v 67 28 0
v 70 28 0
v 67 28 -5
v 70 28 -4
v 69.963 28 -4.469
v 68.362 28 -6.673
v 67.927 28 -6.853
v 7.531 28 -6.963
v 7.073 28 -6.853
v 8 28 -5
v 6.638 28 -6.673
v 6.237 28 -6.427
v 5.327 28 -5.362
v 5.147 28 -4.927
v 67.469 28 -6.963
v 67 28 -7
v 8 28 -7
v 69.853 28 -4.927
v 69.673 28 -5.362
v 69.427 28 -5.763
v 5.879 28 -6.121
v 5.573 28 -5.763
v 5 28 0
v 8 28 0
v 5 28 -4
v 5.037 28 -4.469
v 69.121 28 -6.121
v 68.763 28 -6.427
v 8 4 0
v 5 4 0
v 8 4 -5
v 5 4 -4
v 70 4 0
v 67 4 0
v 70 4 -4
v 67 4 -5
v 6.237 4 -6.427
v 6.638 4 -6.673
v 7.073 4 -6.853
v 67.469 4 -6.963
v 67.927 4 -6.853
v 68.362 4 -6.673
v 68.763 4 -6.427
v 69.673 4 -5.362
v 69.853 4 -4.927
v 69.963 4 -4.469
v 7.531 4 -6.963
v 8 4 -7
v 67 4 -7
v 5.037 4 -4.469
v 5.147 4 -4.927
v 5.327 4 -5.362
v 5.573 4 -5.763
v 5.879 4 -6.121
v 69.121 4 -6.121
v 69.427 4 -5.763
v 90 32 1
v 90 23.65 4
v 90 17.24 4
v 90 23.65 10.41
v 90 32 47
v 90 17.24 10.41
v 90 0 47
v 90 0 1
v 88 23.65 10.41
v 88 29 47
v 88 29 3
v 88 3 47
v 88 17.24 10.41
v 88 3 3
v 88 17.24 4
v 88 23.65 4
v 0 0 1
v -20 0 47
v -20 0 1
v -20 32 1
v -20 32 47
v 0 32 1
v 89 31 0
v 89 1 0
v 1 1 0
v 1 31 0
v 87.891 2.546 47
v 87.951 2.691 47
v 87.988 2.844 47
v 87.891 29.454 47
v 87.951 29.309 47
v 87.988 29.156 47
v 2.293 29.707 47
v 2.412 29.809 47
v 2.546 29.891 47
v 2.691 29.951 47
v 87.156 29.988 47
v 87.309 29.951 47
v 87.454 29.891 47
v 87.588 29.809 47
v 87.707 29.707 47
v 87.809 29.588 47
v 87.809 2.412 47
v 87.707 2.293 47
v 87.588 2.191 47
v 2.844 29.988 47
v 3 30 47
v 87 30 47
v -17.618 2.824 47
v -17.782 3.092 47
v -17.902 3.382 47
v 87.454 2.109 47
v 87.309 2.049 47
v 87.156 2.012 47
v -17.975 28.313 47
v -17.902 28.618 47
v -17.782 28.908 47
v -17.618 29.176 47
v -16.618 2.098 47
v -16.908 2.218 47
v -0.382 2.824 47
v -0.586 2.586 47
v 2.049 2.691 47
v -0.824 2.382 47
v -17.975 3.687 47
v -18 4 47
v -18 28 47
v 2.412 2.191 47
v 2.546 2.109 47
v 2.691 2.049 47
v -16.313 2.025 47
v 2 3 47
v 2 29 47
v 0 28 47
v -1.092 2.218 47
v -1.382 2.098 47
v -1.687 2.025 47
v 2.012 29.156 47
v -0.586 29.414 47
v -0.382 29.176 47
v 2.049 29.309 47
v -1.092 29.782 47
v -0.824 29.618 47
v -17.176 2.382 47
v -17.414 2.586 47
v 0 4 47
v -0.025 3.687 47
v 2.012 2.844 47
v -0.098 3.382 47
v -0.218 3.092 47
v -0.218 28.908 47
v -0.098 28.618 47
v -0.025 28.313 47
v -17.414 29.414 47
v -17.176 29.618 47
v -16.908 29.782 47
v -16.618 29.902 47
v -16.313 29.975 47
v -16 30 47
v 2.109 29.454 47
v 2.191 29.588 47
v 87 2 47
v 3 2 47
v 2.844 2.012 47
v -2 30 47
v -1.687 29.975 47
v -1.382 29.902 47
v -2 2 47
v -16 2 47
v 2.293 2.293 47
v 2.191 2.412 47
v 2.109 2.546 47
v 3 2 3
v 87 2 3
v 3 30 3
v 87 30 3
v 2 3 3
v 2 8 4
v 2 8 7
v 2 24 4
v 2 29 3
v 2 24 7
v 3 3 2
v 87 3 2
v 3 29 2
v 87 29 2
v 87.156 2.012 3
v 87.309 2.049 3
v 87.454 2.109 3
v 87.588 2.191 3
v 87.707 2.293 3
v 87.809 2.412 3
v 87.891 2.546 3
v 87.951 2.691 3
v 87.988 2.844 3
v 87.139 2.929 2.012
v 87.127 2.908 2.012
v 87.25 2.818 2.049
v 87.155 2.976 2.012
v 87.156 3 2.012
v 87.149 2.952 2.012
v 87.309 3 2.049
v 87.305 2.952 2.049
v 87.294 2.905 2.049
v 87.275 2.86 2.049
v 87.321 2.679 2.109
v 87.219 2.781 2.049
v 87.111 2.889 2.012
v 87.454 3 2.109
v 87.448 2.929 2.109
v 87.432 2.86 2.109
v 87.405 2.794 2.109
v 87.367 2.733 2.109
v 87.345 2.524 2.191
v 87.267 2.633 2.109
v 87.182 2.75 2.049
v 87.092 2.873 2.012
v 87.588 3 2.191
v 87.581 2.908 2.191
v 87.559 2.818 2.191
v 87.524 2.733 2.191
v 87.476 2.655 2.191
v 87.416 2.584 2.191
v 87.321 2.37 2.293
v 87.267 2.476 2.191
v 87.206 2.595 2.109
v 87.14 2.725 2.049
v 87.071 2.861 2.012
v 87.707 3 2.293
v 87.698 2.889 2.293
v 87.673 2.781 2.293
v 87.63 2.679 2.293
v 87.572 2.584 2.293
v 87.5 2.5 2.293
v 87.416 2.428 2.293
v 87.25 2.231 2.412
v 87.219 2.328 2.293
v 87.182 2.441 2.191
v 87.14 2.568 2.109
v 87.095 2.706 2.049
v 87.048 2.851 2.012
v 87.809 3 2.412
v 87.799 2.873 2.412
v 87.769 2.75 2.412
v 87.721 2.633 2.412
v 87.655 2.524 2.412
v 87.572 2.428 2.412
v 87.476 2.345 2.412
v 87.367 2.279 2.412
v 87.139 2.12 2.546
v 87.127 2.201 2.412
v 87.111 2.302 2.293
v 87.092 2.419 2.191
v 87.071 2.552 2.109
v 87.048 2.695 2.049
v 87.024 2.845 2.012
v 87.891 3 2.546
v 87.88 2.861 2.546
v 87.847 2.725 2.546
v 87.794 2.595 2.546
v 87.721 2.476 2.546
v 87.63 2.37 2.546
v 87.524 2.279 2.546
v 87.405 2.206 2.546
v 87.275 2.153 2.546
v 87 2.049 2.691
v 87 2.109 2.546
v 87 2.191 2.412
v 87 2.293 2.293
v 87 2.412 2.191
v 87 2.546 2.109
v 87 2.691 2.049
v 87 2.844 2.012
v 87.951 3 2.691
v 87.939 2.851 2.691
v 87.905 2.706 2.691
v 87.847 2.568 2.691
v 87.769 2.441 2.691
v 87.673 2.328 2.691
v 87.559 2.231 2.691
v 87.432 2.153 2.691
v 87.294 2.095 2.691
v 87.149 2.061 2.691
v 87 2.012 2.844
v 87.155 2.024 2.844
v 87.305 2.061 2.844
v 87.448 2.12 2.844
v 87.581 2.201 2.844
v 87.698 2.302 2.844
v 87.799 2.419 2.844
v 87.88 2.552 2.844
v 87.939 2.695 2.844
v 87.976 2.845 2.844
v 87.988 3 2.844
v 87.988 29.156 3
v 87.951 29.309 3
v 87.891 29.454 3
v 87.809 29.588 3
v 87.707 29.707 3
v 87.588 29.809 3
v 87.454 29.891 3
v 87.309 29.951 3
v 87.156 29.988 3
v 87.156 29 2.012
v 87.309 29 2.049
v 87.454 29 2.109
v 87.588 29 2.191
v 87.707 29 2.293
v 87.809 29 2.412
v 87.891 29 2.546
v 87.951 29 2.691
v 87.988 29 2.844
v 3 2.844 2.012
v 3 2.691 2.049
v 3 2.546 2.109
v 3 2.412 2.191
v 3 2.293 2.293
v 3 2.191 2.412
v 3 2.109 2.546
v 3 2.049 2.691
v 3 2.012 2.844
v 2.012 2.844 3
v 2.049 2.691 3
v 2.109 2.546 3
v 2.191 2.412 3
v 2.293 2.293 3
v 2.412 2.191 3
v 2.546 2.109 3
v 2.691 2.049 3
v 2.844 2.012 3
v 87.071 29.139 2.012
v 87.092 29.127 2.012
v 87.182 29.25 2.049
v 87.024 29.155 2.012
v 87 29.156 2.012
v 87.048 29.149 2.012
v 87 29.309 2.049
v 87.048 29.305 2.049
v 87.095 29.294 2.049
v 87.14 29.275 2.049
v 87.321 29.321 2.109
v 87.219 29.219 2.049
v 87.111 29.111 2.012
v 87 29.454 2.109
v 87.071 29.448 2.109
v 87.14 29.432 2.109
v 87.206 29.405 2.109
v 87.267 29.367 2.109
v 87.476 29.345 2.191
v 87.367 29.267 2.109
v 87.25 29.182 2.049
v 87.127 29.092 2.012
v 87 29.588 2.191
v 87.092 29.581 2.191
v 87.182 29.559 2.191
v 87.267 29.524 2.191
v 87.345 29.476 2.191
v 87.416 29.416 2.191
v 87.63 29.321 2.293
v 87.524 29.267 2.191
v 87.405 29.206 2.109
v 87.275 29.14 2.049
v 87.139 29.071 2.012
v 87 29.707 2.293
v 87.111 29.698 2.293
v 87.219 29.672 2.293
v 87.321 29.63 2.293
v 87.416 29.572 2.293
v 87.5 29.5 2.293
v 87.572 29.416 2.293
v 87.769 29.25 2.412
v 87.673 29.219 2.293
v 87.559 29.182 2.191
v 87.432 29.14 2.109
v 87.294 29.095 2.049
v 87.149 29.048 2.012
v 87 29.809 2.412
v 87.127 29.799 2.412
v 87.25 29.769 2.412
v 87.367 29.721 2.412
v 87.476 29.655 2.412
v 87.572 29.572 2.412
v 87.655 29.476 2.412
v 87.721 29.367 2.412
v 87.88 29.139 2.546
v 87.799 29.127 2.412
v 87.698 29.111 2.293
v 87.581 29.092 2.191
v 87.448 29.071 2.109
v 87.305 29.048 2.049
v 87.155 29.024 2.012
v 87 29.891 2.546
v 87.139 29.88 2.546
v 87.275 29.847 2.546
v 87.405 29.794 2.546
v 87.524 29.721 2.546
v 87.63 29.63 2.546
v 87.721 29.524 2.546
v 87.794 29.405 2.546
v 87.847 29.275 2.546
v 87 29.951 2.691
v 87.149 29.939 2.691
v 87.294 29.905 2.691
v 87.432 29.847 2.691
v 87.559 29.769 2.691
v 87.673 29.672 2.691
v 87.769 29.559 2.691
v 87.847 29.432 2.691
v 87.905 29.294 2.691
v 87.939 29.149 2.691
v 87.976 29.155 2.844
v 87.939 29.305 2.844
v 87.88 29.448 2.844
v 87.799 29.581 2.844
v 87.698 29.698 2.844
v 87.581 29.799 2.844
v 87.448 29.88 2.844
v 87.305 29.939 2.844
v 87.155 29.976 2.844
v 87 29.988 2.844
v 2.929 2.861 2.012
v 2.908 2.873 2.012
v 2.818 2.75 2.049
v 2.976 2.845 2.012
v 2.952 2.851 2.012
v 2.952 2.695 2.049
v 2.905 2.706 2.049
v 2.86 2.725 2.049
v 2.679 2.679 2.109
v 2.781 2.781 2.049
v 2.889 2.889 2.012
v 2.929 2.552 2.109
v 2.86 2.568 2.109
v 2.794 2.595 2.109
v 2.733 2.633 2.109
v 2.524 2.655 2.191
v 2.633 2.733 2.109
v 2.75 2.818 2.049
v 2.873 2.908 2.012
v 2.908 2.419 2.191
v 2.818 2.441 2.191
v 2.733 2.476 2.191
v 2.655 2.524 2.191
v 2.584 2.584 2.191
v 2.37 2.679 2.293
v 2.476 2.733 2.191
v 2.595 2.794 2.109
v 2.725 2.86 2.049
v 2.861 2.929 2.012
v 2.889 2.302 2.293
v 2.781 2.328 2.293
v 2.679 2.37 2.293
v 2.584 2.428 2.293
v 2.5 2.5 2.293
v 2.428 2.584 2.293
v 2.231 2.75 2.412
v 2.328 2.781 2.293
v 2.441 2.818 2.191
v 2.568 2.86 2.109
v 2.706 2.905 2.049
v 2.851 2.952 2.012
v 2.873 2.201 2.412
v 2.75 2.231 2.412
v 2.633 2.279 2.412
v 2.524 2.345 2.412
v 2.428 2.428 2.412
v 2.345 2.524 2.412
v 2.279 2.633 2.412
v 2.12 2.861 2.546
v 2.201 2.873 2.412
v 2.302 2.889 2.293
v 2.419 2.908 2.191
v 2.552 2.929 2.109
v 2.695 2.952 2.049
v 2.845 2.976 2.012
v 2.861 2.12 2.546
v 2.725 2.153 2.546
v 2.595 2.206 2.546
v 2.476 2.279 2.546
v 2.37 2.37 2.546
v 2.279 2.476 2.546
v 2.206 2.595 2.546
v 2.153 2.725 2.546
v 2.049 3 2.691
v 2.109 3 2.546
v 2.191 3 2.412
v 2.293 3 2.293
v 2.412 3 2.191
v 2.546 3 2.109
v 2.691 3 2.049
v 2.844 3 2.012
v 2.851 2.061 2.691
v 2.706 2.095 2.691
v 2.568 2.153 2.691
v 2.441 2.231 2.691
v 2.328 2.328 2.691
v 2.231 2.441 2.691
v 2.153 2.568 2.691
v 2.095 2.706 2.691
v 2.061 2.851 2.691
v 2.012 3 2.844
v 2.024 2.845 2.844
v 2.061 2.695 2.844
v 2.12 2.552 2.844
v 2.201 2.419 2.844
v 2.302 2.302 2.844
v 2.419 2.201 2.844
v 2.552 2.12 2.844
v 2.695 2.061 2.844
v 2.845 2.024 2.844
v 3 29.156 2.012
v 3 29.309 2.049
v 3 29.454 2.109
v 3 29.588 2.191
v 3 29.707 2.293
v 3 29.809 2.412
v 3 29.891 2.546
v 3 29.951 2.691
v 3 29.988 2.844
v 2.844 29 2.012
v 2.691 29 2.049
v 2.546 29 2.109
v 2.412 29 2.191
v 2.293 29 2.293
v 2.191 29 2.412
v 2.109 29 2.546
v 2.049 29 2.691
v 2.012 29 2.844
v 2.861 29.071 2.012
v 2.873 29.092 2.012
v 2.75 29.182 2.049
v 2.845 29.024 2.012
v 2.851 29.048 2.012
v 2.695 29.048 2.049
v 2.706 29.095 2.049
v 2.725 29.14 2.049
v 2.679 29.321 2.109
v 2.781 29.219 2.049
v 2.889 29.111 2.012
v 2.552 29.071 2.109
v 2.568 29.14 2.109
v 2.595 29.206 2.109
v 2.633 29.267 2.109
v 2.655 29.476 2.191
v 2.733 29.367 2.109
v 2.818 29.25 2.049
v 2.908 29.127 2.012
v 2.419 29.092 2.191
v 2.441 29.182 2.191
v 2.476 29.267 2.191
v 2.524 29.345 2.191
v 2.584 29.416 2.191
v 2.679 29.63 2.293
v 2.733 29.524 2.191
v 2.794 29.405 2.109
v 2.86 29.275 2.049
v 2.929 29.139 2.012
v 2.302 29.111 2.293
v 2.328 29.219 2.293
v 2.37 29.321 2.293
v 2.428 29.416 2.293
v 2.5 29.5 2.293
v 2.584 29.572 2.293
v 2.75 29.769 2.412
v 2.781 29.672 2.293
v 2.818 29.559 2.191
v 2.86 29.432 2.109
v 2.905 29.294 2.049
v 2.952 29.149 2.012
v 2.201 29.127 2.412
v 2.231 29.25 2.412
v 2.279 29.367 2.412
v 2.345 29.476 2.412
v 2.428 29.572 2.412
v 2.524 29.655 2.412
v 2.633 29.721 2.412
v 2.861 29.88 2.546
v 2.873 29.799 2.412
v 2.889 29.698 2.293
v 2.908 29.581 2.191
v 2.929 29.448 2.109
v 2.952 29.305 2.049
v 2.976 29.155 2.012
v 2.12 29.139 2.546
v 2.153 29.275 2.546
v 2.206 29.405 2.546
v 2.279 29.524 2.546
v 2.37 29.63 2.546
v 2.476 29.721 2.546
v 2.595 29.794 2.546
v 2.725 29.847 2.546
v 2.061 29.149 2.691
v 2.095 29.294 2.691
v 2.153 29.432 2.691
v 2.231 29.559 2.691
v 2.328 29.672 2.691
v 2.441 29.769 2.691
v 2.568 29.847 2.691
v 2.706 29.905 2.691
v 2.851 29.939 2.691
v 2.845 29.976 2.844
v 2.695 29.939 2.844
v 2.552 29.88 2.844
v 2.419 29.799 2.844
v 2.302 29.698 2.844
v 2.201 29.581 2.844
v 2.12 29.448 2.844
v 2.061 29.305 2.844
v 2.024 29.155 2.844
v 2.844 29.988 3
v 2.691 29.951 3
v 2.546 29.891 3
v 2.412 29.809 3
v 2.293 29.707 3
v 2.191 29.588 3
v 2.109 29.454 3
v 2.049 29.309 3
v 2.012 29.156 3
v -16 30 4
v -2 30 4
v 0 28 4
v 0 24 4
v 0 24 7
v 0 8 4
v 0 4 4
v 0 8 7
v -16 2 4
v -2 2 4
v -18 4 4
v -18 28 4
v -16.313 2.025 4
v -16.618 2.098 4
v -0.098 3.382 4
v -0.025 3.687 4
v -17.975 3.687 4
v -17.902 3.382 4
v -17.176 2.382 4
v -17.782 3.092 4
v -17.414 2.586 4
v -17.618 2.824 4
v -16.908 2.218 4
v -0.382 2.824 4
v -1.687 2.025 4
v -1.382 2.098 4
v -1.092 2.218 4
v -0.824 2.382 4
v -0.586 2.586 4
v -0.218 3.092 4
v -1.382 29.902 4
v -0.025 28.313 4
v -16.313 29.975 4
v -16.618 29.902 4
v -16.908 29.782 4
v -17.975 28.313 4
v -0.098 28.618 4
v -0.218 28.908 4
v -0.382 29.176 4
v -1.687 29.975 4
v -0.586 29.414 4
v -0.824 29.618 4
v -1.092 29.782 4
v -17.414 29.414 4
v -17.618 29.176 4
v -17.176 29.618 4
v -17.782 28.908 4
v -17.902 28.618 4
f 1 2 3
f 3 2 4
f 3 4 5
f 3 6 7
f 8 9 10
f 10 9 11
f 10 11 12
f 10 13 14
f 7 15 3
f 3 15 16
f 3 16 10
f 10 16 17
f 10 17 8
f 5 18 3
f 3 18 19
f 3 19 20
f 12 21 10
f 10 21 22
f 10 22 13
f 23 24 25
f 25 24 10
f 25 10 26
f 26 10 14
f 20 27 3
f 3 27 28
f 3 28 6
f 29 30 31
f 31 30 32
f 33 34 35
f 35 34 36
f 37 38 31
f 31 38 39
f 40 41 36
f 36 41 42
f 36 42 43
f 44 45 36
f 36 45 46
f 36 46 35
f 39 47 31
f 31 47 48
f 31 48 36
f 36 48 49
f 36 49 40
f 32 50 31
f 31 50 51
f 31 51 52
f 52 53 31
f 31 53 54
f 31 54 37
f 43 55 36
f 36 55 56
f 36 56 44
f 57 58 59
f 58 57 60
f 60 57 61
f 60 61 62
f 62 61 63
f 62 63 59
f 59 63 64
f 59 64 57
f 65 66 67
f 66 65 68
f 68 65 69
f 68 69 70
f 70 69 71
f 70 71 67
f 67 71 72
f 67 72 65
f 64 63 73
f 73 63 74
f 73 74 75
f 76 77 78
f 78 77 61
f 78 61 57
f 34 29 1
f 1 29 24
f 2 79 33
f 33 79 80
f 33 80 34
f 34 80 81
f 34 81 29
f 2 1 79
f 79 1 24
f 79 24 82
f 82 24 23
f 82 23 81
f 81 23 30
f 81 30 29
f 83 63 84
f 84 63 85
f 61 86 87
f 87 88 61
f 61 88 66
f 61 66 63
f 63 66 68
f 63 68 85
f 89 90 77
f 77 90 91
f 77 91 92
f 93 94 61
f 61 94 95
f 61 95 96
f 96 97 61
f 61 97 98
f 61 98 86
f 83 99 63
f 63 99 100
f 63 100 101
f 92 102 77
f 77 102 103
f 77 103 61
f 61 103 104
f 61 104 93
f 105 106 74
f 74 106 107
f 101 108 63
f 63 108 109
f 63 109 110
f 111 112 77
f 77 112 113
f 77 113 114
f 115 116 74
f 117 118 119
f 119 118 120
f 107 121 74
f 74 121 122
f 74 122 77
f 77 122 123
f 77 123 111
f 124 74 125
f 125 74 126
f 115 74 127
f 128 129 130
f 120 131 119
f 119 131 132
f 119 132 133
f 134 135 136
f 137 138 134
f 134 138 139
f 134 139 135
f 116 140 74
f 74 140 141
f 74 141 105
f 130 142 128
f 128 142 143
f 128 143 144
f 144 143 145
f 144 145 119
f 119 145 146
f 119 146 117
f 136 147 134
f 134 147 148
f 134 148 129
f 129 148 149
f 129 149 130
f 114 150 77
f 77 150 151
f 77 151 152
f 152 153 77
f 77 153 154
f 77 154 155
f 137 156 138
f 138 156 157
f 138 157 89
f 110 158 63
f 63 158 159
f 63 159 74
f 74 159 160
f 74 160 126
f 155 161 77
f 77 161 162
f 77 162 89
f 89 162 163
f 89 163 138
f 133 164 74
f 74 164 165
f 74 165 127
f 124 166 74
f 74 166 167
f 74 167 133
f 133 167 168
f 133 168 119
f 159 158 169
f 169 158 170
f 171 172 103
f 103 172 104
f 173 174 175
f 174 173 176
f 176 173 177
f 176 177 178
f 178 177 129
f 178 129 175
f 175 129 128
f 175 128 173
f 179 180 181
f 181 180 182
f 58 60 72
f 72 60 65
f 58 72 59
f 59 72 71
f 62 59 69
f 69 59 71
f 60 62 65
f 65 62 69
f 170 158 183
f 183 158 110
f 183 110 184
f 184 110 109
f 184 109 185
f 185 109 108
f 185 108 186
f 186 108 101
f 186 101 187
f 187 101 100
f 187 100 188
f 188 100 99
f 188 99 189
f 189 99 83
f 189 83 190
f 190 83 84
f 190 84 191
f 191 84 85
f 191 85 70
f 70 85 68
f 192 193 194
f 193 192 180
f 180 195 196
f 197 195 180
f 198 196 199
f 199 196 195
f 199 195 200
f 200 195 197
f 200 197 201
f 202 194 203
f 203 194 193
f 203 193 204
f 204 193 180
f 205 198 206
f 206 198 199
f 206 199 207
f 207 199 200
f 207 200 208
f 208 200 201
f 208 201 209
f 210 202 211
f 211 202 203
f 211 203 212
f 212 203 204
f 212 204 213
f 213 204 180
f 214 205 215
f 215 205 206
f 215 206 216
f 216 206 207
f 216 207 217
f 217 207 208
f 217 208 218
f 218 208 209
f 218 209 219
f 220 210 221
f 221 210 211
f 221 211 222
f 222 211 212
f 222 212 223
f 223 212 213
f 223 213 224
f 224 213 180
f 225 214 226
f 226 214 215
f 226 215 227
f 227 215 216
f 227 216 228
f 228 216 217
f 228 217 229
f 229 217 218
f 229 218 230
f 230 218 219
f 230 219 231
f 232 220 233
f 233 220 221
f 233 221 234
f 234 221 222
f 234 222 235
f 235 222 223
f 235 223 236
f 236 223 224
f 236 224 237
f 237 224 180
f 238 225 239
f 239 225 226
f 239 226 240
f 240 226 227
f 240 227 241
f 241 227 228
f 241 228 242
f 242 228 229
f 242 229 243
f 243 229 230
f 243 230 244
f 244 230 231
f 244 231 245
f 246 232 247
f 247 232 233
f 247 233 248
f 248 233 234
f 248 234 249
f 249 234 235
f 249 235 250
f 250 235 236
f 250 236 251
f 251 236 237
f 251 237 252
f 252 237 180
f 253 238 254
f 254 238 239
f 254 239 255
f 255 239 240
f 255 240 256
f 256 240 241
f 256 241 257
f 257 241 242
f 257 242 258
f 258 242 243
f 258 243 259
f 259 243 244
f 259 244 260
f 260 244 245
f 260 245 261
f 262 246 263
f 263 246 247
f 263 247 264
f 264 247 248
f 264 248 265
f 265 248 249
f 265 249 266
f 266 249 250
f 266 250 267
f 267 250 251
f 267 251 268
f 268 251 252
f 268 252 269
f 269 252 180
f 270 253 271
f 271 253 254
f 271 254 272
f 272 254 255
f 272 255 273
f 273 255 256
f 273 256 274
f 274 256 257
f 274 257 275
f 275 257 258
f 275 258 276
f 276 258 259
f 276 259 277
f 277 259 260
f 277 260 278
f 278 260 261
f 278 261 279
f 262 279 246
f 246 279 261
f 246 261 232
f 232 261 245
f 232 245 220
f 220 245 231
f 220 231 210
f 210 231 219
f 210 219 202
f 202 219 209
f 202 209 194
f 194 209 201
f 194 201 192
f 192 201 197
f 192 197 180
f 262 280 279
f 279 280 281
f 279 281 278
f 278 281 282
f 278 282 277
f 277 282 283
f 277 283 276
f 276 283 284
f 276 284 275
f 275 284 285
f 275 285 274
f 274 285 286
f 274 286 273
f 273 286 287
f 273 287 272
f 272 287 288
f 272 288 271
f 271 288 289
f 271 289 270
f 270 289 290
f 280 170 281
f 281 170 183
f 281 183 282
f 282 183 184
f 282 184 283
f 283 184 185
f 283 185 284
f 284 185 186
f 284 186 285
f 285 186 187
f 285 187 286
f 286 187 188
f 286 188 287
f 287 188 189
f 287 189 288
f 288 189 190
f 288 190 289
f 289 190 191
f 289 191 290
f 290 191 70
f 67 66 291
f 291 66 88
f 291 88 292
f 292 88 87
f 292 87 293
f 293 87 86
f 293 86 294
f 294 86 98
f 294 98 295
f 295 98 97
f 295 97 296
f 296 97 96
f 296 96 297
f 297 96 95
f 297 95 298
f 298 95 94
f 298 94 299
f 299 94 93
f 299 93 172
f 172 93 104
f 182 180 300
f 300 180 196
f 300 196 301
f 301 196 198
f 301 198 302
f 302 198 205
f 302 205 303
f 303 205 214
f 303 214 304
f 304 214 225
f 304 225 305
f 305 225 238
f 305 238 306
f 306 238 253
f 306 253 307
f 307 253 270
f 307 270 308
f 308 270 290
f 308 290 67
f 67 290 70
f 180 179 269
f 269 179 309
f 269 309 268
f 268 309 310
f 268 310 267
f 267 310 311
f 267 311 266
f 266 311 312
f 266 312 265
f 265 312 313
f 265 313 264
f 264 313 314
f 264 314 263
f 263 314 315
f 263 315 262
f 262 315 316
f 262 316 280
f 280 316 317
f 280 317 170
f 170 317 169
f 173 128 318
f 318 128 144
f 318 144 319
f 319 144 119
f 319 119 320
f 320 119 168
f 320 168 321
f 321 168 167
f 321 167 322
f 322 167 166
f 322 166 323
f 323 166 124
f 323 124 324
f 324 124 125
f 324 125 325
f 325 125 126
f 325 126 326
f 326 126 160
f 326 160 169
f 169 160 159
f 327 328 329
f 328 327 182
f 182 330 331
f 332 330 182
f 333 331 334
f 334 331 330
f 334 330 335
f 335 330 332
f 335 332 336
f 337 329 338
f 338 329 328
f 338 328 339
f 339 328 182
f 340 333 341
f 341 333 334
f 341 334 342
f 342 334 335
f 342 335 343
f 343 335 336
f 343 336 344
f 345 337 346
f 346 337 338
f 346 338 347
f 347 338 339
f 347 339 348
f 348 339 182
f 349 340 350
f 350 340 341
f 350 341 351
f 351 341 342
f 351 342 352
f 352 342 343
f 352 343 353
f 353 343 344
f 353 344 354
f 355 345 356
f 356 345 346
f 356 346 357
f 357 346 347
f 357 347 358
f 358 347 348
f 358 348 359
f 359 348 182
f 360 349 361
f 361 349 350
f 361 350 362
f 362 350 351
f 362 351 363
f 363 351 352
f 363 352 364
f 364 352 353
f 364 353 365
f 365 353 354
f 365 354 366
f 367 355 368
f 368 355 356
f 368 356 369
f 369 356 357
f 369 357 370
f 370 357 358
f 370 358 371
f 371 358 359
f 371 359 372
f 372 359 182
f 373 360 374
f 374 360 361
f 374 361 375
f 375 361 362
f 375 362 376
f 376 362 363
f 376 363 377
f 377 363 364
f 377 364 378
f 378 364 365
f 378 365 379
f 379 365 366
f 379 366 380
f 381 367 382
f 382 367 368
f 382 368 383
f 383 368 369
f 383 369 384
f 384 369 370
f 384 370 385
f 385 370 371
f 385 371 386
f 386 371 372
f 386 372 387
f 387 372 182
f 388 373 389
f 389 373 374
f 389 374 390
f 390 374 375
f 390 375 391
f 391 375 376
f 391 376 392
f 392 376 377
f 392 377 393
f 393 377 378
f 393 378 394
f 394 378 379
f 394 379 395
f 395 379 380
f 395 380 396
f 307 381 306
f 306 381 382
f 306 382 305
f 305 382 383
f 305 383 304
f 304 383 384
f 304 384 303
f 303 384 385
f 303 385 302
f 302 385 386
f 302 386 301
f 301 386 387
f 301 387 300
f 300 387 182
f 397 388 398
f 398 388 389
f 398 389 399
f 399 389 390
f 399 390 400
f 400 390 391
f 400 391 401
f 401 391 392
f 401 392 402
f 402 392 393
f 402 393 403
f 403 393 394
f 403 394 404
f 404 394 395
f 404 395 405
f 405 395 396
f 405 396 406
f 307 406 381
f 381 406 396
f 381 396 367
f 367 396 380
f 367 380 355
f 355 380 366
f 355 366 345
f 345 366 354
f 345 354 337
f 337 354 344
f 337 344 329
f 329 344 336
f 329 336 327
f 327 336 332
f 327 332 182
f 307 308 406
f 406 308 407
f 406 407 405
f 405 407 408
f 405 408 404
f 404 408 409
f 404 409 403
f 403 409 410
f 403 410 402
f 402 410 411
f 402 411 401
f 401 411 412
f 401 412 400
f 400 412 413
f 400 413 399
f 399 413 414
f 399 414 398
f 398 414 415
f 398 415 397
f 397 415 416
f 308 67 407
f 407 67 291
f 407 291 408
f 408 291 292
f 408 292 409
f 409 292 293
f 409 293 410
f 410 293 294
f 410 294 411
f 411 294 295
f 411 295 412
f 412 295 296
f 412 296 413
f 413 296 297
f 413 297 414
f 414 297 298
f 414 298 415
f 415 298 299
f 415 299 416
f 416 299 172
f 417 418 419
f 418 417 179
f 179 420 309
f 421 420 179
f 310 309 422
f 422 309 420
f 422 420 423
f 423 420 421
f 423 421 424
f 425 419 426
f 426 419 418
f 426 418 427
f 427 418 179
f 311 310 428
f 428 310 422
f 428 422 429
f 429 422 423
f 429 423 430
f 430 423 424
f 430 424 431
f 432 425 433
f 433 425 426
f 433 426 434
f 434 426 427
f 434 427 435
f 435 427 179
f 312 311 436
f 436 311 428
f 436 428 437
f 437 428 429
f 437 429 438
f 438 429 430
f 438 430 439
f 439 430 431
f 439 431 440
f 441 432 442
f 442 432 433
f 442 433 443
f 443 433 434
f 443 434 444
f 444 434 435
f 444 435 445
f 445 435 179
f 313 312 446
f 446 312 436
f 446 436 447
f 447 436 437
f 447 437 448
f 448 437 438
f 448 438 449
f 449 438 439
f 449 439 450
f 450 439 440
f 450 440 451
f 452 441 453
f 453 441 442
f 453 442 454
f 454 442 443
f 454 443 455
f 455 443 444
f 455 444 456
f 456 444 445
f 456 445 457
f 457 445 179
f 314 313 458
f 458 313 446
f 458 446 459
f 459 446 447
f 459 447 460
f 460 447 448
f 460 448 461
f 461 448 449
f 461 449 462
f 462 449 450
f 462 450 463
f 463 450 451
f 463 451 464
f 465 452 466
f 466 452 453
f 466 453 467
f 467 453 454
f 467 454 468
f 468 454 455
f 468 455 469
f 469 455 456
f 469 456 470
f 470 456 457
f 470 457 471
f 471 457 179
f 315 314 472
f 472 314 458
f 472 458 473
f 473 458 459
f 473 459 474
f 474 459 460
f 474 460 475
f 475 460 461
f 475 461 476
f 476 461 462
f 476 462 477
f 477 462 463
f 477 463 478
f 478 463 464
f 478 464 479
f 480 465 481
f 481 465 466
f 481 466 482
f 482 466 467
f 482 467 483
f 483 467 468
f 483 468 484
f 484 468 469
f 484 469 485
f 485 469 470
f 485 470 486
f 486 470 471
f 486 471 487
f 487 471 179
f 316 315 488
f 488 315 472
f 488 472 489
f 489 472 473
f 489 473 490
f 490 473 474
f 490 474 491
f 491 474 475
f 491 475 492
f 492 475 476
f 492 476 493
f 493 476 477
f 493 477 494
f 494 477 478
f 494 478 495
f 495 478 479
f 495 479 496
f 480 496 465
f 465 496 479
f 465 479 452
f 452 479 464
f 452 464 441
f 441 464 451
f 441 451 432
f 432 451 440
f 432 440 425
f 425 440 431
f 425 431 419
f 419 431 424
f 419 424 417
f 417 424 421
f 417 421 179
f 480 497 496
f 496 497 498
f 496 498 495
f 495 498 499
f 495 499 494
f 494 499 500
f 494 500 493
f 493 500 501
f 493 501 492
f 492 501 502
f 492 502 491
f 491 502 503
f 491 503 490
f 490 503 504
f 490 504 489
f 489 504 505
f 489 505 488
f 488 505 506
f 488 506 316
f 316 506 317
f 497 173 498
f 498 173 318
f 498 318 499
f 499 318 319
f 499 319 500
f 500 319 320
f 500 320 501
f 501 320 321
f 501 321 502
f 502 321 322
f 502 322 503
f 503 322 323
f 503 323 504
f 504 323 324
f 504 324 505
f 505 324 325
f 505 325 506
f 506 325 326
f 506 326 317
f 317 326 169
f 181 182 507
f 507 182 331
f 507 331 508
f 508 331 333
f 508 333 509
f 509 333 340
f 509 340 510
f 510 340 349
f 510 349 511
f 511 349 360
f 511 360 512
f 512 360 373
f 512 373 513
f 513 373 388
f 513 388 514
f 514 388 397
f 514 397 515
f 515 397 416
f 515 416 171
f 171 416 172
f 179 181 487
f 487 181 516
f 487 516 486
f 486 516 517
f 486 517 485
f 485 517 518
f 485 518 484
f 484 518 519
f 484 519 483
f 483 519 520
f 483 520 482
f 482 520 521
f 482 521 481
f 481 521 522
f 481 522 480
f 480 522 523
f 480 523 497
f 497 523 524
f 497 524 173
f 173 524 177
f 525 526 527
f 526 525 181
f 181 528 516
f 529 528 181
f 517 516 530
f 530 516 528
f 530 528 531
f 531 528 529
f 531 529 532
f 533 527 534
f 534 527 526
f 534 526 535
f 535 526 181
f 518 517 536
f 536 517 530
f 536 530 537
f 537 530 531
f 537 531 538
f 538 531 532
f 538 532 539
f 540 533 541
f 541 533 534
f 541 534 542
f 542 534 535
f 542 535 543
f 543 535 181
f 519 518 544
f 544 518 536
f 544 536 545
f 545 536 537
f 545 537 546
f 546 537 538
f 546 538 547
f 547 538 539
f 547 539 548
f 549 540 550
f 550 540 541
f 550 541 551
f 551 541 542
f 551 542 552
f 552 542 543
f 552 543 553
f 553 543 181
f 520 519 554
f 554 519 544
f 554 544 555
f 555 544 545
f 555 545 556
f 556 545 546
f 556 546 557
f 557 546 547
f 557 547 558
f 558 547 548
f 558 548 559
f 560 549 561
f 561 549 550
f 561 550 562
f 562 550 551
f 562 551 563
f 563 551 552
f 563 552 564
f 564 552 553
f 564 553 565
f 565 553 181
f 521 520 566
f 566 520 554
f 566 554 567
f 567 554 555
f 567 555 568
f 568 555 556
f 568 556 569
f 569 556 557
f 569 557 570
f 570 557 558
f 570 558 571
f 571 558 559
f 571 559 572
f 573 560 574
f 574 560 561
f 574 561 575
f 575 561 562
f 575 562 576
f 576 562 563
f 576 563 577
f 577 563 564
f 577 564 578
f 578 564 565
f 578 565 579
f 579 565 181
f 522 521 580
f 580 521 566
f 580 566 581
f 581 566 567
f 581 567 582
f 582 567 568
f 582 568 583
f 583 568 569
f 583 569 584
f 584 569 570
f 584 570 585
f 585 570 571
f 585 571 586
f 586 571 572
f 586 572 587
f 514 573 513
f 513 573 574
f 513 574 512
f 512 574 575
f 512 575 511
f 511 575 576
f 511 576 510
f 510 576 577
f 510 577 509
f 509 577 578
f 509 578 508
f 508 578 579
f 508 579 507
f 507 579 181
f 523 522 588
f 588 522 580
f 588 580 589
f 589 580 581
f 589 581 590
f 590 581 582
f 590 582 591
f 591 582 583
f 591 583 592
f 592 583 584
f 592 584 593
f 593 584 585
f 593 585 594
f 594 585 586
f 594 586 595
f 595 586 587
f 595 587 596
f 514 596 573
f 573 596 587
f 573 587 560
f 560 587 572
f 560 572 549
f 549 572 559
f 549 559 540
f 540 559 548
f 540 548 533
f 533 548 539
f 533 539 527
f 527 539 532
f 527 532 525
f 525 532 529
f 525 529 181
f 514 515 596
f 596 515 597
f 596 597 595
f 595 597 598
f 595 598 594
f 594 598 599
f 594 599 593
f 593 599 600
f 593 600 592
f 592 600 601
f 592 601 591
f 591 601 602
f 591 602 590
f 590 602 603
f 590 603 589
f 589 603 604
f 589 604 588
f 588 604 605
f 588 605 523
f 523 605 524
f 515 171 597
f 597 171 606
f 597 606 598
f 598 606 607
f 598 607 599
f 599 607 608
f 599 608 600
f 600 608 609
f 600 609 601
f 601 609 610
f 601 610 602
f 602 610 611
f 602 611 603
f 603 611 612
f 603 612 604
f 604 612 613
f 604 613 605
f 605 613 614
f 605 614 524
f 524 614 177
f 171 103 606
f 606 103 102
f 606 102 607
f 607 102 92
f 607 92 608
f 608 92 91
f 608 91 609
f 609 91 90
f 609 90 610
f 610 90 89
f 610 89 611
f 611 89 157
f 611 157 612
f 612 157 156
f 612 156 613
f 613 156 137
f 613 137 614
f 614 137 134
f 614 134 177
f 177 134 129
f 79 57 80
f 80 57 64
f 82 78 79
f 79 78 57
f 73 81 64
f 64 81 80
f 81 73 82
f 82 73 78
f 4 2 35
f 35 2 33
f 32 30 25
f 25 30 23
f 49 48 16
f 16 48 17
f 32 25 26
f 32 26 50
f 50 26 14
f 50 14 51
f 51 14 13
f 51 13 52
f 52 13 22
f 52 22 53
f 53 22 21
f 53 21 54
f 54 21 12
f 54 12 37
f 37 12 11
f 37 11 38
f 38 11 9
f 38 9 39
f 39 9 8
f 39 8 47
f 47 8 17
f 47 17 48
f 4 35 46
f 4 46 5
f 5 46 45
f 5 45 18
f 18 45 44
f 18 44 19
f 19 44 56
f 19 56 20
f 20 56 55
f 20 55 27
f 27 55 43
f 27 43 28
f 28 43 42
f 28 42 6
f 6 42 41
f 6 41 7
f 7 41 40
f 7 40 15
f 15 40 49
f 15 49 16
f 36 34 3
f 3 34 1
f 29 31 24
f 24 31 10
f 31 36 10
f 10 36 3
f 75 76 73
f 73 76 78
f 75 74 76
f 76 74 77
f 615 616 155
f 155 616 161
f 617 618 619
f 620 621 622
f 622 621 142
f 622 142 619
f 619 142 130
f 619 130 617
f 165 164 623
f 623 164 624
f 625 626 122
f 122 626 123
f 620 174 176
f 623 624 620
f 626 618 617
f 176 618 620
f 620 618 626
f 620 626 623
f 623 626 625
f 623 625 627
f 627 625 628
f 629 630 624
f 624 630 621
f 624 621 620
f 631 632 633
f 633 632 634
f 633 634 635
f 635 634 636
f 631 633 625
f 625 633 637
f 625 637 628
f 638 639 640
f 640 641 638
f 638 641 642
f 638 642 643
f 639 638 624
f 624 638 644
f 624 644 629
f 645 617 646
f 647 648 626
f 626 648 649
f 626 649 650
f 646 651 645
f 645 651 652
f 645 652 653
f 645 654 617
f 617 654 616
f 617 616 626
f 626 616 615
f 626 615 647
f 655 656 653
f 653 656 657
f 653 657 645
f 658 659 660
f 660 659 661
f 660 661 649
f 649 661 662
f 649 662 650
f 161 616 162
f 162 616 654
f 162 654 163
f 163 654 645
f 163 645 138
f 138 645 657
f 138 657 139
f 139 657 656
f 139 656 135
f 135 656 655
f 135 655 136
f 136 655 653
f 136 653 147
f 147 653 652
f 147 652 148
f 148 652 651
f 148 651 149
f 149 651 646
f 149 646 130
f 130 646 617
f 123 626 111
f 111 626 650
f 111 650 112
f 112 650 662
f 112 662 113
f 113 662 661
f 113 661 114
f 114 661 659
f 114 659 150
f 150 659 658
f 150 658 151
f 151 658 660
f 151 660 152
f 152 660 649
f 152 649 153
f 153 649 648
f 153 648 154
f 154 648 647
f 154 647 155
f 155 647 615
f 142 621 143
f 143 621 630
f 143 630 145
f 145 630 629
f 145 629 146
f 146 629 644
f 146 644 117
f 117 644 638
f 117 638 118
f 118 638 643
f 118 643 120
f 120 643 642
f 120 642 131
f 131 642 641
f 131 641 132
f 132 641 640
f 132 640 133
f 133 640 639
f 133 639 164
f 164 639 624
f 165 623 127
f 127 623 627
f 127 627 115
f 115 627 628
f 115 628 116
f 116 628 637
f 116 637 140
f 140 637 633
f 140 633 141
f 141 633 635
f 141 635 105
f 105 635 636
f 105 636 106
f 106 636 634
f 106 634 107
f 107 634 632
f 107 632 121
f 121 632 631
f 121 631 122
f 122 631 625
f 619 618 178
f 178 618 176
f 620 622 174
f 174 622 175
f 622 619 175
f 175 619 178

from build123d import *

# Parameters (mm, degrees)
ESQUISSE1_W             = 90
ESQUISSE1_H             = 32
BOSS_EXTRU_1_DEPTH      = 2
ESQUISSE2_W             = 90
ESQUISSE2_H             = 32
ESQUISSE2_W_2           = 86
ESQUISSE2_H_2           = 28
BOSS_EXTRU_3_DEPTH      = 45
ENL_V_MAT_EXTRU_1_REACH = 108.457
ESQUISSE3_W             = 6.41
ESQUISSE3_H             = 6.41
CONG_3_R                = 1
CHANFREIN8_SIZE         = 1
ESQUISSE7_W             = 65
ESQUISSE7_H             = 24
BOSS_EXTRU_8_DEPTH      = 7
CONG_11_R               = 3
CONG_12_R               = 3
ESQUISSE17_W            = 59
ESQUISSE17_H            = 5
ENL_V_MAT_EXTRU_6_DEPTH = 24
ESQUISSE20_W            = 46
ESQUISSE20_H            = 32
BOSS_EXTRU_10_DEPTH     = 20
ESQUISSE21_W            = 18
ESQUISSE21_H            = 28
ENL_V_MAT_EXTRU_7_DEPTH = 43
CONG_13_R               = 2
CONG_14_R               = 2
CONG_15_R               = 2
CONG_16_R               = 2
ESQUISSE22_W            = 3
ESQUISSE22_H            = 16
ENL_V_MAT_EXTRU_8_DEPTH = 2


with BuildPart() as part:
    # Esquisse1 → Boss.-Extru.1 (new body)
    with BuildSketch(Plane.XY):
        with Locations((45, 16)):
            Rectangle(ESQUISSE1_W, ESQUISSE1_H)
    extrude(amount=BOSS_EXTRU_1_DEPTH)

    # Esquisse2 → Boss.-Extru.3 (add)
    with BuildSketch(Plane.XY.offset(2)):
        with Locations((45, 16)):
            Rectangle(ESQUISSE2_W, ESQUISSE2_H)
        with Locations((45, 16)):
            Rectangle(ESQUISSE2_W_2, ESQUISSE2_H_2, mode=Mode.SUBTRACT)
    extrude(amount=BOSS_EXTRU_3_DEPTH)

    # Esquisse3 → Enlèv. mat.-Extru.1 (cut, up to next)
    with BuildSketch(Plane(origin=(90, 0, 0), x_dir=(0, 0, -1), z_dir=(1, 0, 0)), mode=Mode.PRIVATE) as enl_v_mat_extru_1_sk1:
        with Locations((-7.205, 20.445)):
            Rectangle(ESQUISSE3_W, ESQUISSE3_H)
    enl_v_mat_extru_1_tool1 = extrude(enl_v_mat_extru_1_sk1.sketch, amount=-ENL_V_MAT_EXTRU_1_REACH, mode=Mode.PRIVATE) & part.part
    add(enl_v_mat_extru_1_tool1.solids().sort_by_distance((90, 20.445, 7.205))[0], mode=Mode.SUBTRACT)

    # Congé3
    cong_3_edges = [part.edges().sort_by_distance(p)[0] for p in [
        (45, 2, 2),
        (88, 16, 2),
        (45, 30, 2),
        (2, 16, 2),
        (88, 2, 24.5),
        (88, 30, 24.5),
        (2, 30, 24.5),
        (2, 2, 24.5),
    ]]
    fillet(cong_3_edges, radius=CONG_3_R)

    # Chanfrein8
    chanfrein8_edges = [part.edges().sort_by_distance(p)[0] for p in [
        (45, 32, 0),
        (90, 16, 0),
        (45, 0, 0),
        (0, 16, 0),
    ]]
    chamfer(chanfrein8_edges, length=CHANFREIN8_SIZE)

    # Esquisse7 → Boss.-Extru.8 (add)
    with BuildSketch(Plane(origin=(0, 0, 0), x_dir=(-1, 0, 0), z_dir=(0, 0, -1))):
        with Locations((-37.5, 16)):
            Rectangle(ESQUISSE7_W, ESQUISSE7_H)
    extrude(amount=BOSS_EXTRU_8_DEPTH)

    # Congé11
    cong_11_edges = [part.edges().sort_by_distance(p)[0] for p in [
        (5, 16, -7),
    ]]
    fillet(cong_11_edges, radius=CONG_11_R)

    # Congé12
    cong_12_edges = [part.edges().sort_by_distance(p)[0] for p in [
        (70, 16, -7),
    ]]
    fillet(cong_12_edges, radius=CONG_12_R)

    # Esquisse17 → Enlèv. mat.-Extru.6 (cut)
    with BuildSketch(Plane(origin=(0, 28, 0), x_dir=(1, 0, 0), z_dir=(0, 1, 0))):
        with Locations((37.5, 2.5)):
            Rectangle(ESQUISSE17_W, ESQUISSE17_H)
    extrude(amount=-ENL_V_MAT_EXTRU_6_DEPTH, mode=Mode.SUBTRACT)

    # Esquisse20 → Boss.-Extru.10 (add)
    with BuildSketch(Plane.ZY):
        with Locations((24, 16)):
            Rectangle(ESQUISSE20_W, ESQUISSE20_H)
    extrude(amount=BOSS_EXTRU_10_DEPTH)

    # Esquisse21 → Enlèv. mat.-Extru.7 (cut)
    with BuildSketch(Plane.XY.offset(47)):
        with Locations((-9, 16)):
            Rectangle(ESQUISSE21_W, ESQUISSE21_H)
    extrude(amount=-ENL_V_MAT_EXTRU_7_DEPTH, mode=Mode.SUBTRACT)

    # Congé13
    cong_13_edges = [part.edges().sort_by_distance(p)[0] for p in [
        (0, 30, 25.5),
    ]]
    fillet(cong_13_edges, radius=CONG_13_R)

    # Congé14
    cong_14_edges = [part.edges().sort_by_distance(p)[0] for p in [
        (-18, 30, 25.5),
    ]]
    fillet(cong_14_edges, radius=CONG_14_R)

    # Congé15
    cong_15_edges = [part.edges().sort_by_distance(p)[0] for p in [
        (0, 2, 25.5),
    ]]
    fillet(cong_15_edges, radius=CONG_15_R)

    # Congé16
    cong_16_edges = [part.edges().sort_by_distance(p)[0] for p in [
        (-18, 2, 25.5),
    ]]
    fillet(cong_16_edges, radius=CONG_16_R)

    # Esquisse22 → Enlèv. mat.-Extru.8 (cut)
    with BuildSketch(Plane(origin=(2, 0, 0), x_dir=(0, 0, -1), z_dir=(1, 0, 0))):
        with Locations((-5.5, 16)):
            Rectangle(ESQUISSE22_W, ESQUISSE22_H)
    extrude(amount=-ENL_V_MAT_EXTRU_8_DEPTH, mode=Mode.SUBTRACT)


solid = part.part
